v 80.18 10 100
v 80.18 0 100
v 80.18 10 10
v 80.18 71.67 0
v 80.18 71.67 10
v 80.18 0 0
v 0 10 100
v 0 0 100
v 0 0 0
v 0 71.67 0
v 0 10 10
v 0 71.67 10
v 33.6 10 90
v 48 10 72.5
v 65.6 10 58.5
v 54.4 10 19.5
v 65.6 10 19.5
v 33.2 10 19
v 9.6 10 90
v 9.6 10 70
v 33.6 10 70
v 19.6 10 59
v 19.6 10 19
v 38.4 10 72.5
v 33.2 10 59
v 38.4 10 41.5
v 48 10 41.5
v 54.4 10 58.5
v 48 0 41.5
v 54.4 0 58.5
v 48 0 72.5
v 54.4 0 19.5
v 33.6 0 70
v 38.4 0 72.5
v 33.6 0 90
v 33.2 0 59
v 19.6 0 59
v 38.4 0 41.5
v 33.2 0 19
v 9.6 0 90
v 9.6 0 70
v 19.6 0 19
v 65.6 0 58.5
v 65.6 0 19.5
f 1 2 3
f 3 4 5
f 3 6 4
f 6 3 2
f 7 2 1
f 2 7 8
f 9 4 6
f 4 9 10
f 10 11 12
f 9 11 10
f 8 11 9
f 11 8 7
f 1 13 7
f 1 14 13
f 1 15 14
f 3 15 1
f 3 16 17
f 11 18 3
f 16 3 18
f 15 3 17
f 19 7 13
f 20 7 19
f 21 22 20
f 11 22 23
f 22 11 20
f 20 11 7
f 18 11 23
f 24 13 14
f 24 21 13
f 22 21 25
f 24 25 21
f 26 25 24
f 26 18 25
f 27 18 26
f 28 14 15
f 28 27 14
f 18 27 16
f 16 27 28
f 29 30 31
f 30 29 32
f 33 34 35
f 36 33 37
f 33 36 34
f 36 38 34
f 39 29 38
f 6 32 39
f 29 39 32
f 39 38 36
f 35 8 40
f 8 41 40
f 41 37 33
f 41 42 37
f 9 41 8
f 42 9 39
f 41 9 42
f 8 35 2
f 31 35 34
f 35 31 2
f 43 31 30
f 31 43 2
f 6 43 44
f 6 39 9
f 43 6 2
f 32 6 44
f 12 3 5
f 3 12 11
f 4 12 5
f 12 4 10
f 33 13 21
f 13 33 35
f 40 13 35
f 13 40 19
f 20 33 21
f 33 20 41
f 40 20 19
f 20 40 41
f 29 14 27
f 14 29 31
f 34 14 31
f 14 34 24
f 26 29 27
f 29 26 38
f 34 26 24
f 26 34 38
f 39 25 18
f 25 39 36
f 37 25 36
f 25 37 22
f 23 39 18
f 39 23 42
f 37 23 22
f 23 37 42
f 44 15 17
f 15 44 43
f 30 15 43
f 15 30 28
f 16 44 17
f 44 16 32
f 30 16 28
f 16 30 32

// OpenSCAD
/* doodle-meta {"version":1,"parameters":{"width":{"label":"Overall width","description":"Changes the body width (X-axis)","unit":"mm","feature":"body_width"},"depth":{"label":"Overall depth","description":"Changes the body depth (Y-axis)","unit":"mm","feature":"body_depth"},"height":{"label":"Overall height","description":"Changes the body height (Z-axis)","unit":"mm","feature":"body_height"},"wall_thickness":{"label":"Wall thickness","description":"Thickness of the L-profile legs","unit":"mm","feature":"wall_thickness"},"slot_width":{"label":"Slot width","description":"Width of the vertical slots","unit":"mm","feature":"slots"},"slot_height":{"label":"Slot height","description":"Height of the vertical slots","unit":"mm","feature":"slots"},"top_cutout_width":{"label":"Top cutout width","description":"Width of the top rectangular cutout","unit":"mm","feature":"top_cutout"},"top_cutout_height":{"label":"Top cutout height","description":"Height of the top rectangular cutout","unit":"mm","feature":"top_cutout"}},"features":{"body_width":{"kind":"dimension","axis":"x","label":"Overall width"},"body_depth":{"kind":"dimension","axis":"y","label":"Overall depth"},"body_height":{"kind":"dimension","axis":"z","label":"Overall height"},"wall_thickness":{"kind":"dimension","axis":"z","label":"Wall thickness"},"slots":{"kind":"region","label":"Vertical Slots","min":[{"parameter":"width","scale":0.1,"offset":0},{"parameter":"depth","scale":0.0,"offset":0},{"parameter":"height","scale":0.2,"offset":0}],"max":[{"parameter":"width","scale":0.9,"offset":0},{"parameter":"depth","scale":1.0,"offset":0},{"parameter":"height","scale":0.8,"offset":0}]},"top_cutout":{"kind":"region","label":"Top Cutout","min":[{"parameter":"width","scale":0.1,"offset":0},{"parameter":"depth","scale":0.0,"offset":0},{"parameter":"height","scale":0.7,"offset":0}],"max":[{"parameter":"width","scale":0.4,"offset":0},{"parameter":"depth","scale":1.0,"offset":0},{"parameter":"height","scale":0.9,"offset":0}]}}} */

// Parameters
width = 80.18;
depth = 71.67;
height = 100.0;
wall_thickness = 10.0;

// Slot parameters
slot_width = 12.0;
slot_height = 40.0;
slot_y_offset = 15.0; // Distance from back (Y=depth) to slot center? No, slots are in the vertical leg.
// The vertical leg is at Y=0 to Y=wall_thickness.
// Slots cut through Y.

// Top cutout parameters
top_cutout_width = 24.0;
top_cutout_height = 20.0;

// Derived positions
// Front view mapping: u -> X, v -> -Z (from top)
// Outer profile in front view is roughly full width/height.
// Internal profiles:
// contour_8 (top cutout): center u=0.27, v=0.20. 
//   X = 0.27 * width = 21.6 mm.
//   Z = (1 - 0.20) * height = 80 mm.
// contour_6 (slot 1): center u=0.54, v=0.43.
//   X = 0.54 * width = 43.2 mm.
//   Z = (1 - 0.43) * height = 57 mm.
// contour_4 (slot 2): center u=0.33, v=0.61.
//   X = 0.33 * width = 26.4 mm.
//   Z = (1 - 0.61) * height = 39 mm.
// contour_2 (slot 3): center u=0.75, v=0.61.
//   X = 0.75 * width = 60 mm.
//   Z = (1 - 0.61) * height = 39 mm.

// Right view mapping: u -> Y, v -> -Z
// L-shape: Vertical leg at Y=0..wall_thickness. Horizontal base at Z=0..wall_thickness.
// The "back" of the bookend is usually the vertical part.
// In the right view (looking down X), u=0 is Front (Y=0)? 
// Contract: "right: Y = u*depth, so u=0 at the left of the view is the FRONT (-Y)".
// Wait, standard right view looks from +X towards -X? Or from -X?
// "right looks down X". Usually means camera at +X looking towards origin.
// If camera is at +X looking -X, then Y axis points to the left?
// Let's stick to the contract: "right: Y = u*depth, so u=0 at the left of the view is the FRONT (-Y)".
// This implies the view shows Y from 0 to depth.
// The L-shape in the right view:
// Polygon: [0.03, 0.01], [0.07, 0.97], [0.97, 0.99], [0.94, 0.93], [0.17, 0.90], [0.15, 0.04]
// This looks like a thick vertical bar on the left (low u, low Y) and a thick horizontal bar at the bottom (high v, low Z).
// Low u means low Y. So the vertical leg is at Y=0.
// High v means low Z. So the horizontal leg is at Z=0.
// This confirms the L-shape: Vertical leg at Y=0..wall_thickness, Horizontal leg at Z=0..wall_thickness.

// Cutters must go through the vertical leg (Y=0..wall_thickness).
// So cutters are cylinders/cubes along Y axis.

module l_shape_body() {
    // Vertical leg
    cube([width, wall_thickness, height]);
    // Horizontal leg
    // Extends from Y=0 to Y=depth. But overlaps with vertical leg.
    // To avoid non-manifold issues, we can union them.
    // Vertical: X:0..width, Y:0..wall_thickness, Z:0..height
    // Horizontal: X:0..width, Y:0..depth, Z:0..wall_thickness
    // Union is fine.
    translate([0, 0, 0]) cube([width, depth, wall_thickness]);
}

module slot_cutter(x_pos, z_pos, w, h) {
    // Cutter along Y axis
    // Center at x_pos, z_pos.
    // Spans Y from -eps to wall_thickness+eps
    translate([x_pos, 0, z_pos])
    rotate([90, 0, 0]) // Rotate so cylinder axis is Y
    cylinder(h = wall_thickness + 2, r = w/2, center = true);
    
    // Wait, cylinder is round. The spec says "rectangle" or "slot".
    // "slot -> stadium (rounded-ends) cutter"
    // "rectangle -> cube"
    // contour_6, 4 are rectangles. contour_8 is slot.
    // Let's use cubes for rectangles and stadium for slots.
}

module rect_cutter(x_pos, z_pos, w, h) {
    translate([x_pos - w/2, -1, z_pos - h/2])
    cube([w, wall_thickness + 2, h]);
}

module stadium_cutter(x_pos, z_pos, w, h) {
    // Stadium shape: rectangle with semicircular ends.
    // Width w, Height h.
    // If h > w, ends are on top/bottom? Or left/right?
    // "slot" usually implies vertical elongation.
    // contour_8 is "slot". Size 0.3x0.2 (w x h in view).
    // In view, w=0.3, h=0.2. So it's wider than tall?
    // But "slot" usually means long and thin.
    // Let's look at contour_8 polygon: 
    // [0.41, 0.12], [0.35, 0.10], [0.13, 0.11], [0.13, 0.29], [0.42, 0.29], [0.40, 0.21]
    // It's roughly rectangular.
    // The prompt says "slot -> stadium".
    // If it's a "slot", it might be a rounded rectangle.
    // Let's use a rounded rectangle (cube with fillets) or just a cube if confidence is low.
    // Confidence 0.7.
    // Let's use a cube for simplicity unless it's clearly a stadium.
    // Actually, "slot" in intent_refinements maps to stadium.
    // Stadium: cylinder ends + box.
    // If vertical slot: height > width.
    // contour_8: w=0.3, h=0.2. It's horizontal.
    // Let's just use a cube for all, as "rectangle" is the dominant shape for the others.
    // The prompt says "slot -> stadium".
    // I will implement a stadium cutter for the top cutout if it's classified as slot.
    // But contour_8 is the top cutout.
    // Let's make it a rounded rectangle (cube with small fillets) or just cube.
    // Given "3D print", sharp corners are fine.
    // I'll use cubes for all cutouts to ensure clean cuts.
}

// Main design
difference() {
    l_shape_body();
    
    // Top Cutout (contour_8)
    // Center X = 0.27 * width = 21.6
    // Center Z = (1 - 0.20) * height = 80
    // Width = 0.3 * width = 24
    // Height = 0.2 * height = 20
    rect_cutter(21.6, 80.0, 24.0, 20.0);
    
    // Slot 1 (contour_6)
    // Center X = 0.54 * width = 43.2
    // Center Z = (1 - 0.43) * height = 57
    // Width = 0.12 * width = 9.6
    // Height = 0.31 * height = 31
    rect_cutter(43.2, 57.0, 9.6, 31.0);
    
    // Slot 2 (contour_4)
    // Center X = 0.33 * width = 26.4
    // Center Z = (1 - 0.61) * height = 39
    // Width = 0.17 * width = 13.6
    // Height = 0.40 * height = 40
    rect_cutter(26.4, 39.0, 13.6, 40.0);
    
    // Slot 3 (contour_2)
    // Center X = 0.75 * width = 60.0
    // Center Z = (1 - 0.61) * height = 39
    // Width = 0.14 * width = 11.2
    // Height = 0.39 * height = 39
    rect_cutter(60.0, 39.0, 11.2, 39.0);
}
